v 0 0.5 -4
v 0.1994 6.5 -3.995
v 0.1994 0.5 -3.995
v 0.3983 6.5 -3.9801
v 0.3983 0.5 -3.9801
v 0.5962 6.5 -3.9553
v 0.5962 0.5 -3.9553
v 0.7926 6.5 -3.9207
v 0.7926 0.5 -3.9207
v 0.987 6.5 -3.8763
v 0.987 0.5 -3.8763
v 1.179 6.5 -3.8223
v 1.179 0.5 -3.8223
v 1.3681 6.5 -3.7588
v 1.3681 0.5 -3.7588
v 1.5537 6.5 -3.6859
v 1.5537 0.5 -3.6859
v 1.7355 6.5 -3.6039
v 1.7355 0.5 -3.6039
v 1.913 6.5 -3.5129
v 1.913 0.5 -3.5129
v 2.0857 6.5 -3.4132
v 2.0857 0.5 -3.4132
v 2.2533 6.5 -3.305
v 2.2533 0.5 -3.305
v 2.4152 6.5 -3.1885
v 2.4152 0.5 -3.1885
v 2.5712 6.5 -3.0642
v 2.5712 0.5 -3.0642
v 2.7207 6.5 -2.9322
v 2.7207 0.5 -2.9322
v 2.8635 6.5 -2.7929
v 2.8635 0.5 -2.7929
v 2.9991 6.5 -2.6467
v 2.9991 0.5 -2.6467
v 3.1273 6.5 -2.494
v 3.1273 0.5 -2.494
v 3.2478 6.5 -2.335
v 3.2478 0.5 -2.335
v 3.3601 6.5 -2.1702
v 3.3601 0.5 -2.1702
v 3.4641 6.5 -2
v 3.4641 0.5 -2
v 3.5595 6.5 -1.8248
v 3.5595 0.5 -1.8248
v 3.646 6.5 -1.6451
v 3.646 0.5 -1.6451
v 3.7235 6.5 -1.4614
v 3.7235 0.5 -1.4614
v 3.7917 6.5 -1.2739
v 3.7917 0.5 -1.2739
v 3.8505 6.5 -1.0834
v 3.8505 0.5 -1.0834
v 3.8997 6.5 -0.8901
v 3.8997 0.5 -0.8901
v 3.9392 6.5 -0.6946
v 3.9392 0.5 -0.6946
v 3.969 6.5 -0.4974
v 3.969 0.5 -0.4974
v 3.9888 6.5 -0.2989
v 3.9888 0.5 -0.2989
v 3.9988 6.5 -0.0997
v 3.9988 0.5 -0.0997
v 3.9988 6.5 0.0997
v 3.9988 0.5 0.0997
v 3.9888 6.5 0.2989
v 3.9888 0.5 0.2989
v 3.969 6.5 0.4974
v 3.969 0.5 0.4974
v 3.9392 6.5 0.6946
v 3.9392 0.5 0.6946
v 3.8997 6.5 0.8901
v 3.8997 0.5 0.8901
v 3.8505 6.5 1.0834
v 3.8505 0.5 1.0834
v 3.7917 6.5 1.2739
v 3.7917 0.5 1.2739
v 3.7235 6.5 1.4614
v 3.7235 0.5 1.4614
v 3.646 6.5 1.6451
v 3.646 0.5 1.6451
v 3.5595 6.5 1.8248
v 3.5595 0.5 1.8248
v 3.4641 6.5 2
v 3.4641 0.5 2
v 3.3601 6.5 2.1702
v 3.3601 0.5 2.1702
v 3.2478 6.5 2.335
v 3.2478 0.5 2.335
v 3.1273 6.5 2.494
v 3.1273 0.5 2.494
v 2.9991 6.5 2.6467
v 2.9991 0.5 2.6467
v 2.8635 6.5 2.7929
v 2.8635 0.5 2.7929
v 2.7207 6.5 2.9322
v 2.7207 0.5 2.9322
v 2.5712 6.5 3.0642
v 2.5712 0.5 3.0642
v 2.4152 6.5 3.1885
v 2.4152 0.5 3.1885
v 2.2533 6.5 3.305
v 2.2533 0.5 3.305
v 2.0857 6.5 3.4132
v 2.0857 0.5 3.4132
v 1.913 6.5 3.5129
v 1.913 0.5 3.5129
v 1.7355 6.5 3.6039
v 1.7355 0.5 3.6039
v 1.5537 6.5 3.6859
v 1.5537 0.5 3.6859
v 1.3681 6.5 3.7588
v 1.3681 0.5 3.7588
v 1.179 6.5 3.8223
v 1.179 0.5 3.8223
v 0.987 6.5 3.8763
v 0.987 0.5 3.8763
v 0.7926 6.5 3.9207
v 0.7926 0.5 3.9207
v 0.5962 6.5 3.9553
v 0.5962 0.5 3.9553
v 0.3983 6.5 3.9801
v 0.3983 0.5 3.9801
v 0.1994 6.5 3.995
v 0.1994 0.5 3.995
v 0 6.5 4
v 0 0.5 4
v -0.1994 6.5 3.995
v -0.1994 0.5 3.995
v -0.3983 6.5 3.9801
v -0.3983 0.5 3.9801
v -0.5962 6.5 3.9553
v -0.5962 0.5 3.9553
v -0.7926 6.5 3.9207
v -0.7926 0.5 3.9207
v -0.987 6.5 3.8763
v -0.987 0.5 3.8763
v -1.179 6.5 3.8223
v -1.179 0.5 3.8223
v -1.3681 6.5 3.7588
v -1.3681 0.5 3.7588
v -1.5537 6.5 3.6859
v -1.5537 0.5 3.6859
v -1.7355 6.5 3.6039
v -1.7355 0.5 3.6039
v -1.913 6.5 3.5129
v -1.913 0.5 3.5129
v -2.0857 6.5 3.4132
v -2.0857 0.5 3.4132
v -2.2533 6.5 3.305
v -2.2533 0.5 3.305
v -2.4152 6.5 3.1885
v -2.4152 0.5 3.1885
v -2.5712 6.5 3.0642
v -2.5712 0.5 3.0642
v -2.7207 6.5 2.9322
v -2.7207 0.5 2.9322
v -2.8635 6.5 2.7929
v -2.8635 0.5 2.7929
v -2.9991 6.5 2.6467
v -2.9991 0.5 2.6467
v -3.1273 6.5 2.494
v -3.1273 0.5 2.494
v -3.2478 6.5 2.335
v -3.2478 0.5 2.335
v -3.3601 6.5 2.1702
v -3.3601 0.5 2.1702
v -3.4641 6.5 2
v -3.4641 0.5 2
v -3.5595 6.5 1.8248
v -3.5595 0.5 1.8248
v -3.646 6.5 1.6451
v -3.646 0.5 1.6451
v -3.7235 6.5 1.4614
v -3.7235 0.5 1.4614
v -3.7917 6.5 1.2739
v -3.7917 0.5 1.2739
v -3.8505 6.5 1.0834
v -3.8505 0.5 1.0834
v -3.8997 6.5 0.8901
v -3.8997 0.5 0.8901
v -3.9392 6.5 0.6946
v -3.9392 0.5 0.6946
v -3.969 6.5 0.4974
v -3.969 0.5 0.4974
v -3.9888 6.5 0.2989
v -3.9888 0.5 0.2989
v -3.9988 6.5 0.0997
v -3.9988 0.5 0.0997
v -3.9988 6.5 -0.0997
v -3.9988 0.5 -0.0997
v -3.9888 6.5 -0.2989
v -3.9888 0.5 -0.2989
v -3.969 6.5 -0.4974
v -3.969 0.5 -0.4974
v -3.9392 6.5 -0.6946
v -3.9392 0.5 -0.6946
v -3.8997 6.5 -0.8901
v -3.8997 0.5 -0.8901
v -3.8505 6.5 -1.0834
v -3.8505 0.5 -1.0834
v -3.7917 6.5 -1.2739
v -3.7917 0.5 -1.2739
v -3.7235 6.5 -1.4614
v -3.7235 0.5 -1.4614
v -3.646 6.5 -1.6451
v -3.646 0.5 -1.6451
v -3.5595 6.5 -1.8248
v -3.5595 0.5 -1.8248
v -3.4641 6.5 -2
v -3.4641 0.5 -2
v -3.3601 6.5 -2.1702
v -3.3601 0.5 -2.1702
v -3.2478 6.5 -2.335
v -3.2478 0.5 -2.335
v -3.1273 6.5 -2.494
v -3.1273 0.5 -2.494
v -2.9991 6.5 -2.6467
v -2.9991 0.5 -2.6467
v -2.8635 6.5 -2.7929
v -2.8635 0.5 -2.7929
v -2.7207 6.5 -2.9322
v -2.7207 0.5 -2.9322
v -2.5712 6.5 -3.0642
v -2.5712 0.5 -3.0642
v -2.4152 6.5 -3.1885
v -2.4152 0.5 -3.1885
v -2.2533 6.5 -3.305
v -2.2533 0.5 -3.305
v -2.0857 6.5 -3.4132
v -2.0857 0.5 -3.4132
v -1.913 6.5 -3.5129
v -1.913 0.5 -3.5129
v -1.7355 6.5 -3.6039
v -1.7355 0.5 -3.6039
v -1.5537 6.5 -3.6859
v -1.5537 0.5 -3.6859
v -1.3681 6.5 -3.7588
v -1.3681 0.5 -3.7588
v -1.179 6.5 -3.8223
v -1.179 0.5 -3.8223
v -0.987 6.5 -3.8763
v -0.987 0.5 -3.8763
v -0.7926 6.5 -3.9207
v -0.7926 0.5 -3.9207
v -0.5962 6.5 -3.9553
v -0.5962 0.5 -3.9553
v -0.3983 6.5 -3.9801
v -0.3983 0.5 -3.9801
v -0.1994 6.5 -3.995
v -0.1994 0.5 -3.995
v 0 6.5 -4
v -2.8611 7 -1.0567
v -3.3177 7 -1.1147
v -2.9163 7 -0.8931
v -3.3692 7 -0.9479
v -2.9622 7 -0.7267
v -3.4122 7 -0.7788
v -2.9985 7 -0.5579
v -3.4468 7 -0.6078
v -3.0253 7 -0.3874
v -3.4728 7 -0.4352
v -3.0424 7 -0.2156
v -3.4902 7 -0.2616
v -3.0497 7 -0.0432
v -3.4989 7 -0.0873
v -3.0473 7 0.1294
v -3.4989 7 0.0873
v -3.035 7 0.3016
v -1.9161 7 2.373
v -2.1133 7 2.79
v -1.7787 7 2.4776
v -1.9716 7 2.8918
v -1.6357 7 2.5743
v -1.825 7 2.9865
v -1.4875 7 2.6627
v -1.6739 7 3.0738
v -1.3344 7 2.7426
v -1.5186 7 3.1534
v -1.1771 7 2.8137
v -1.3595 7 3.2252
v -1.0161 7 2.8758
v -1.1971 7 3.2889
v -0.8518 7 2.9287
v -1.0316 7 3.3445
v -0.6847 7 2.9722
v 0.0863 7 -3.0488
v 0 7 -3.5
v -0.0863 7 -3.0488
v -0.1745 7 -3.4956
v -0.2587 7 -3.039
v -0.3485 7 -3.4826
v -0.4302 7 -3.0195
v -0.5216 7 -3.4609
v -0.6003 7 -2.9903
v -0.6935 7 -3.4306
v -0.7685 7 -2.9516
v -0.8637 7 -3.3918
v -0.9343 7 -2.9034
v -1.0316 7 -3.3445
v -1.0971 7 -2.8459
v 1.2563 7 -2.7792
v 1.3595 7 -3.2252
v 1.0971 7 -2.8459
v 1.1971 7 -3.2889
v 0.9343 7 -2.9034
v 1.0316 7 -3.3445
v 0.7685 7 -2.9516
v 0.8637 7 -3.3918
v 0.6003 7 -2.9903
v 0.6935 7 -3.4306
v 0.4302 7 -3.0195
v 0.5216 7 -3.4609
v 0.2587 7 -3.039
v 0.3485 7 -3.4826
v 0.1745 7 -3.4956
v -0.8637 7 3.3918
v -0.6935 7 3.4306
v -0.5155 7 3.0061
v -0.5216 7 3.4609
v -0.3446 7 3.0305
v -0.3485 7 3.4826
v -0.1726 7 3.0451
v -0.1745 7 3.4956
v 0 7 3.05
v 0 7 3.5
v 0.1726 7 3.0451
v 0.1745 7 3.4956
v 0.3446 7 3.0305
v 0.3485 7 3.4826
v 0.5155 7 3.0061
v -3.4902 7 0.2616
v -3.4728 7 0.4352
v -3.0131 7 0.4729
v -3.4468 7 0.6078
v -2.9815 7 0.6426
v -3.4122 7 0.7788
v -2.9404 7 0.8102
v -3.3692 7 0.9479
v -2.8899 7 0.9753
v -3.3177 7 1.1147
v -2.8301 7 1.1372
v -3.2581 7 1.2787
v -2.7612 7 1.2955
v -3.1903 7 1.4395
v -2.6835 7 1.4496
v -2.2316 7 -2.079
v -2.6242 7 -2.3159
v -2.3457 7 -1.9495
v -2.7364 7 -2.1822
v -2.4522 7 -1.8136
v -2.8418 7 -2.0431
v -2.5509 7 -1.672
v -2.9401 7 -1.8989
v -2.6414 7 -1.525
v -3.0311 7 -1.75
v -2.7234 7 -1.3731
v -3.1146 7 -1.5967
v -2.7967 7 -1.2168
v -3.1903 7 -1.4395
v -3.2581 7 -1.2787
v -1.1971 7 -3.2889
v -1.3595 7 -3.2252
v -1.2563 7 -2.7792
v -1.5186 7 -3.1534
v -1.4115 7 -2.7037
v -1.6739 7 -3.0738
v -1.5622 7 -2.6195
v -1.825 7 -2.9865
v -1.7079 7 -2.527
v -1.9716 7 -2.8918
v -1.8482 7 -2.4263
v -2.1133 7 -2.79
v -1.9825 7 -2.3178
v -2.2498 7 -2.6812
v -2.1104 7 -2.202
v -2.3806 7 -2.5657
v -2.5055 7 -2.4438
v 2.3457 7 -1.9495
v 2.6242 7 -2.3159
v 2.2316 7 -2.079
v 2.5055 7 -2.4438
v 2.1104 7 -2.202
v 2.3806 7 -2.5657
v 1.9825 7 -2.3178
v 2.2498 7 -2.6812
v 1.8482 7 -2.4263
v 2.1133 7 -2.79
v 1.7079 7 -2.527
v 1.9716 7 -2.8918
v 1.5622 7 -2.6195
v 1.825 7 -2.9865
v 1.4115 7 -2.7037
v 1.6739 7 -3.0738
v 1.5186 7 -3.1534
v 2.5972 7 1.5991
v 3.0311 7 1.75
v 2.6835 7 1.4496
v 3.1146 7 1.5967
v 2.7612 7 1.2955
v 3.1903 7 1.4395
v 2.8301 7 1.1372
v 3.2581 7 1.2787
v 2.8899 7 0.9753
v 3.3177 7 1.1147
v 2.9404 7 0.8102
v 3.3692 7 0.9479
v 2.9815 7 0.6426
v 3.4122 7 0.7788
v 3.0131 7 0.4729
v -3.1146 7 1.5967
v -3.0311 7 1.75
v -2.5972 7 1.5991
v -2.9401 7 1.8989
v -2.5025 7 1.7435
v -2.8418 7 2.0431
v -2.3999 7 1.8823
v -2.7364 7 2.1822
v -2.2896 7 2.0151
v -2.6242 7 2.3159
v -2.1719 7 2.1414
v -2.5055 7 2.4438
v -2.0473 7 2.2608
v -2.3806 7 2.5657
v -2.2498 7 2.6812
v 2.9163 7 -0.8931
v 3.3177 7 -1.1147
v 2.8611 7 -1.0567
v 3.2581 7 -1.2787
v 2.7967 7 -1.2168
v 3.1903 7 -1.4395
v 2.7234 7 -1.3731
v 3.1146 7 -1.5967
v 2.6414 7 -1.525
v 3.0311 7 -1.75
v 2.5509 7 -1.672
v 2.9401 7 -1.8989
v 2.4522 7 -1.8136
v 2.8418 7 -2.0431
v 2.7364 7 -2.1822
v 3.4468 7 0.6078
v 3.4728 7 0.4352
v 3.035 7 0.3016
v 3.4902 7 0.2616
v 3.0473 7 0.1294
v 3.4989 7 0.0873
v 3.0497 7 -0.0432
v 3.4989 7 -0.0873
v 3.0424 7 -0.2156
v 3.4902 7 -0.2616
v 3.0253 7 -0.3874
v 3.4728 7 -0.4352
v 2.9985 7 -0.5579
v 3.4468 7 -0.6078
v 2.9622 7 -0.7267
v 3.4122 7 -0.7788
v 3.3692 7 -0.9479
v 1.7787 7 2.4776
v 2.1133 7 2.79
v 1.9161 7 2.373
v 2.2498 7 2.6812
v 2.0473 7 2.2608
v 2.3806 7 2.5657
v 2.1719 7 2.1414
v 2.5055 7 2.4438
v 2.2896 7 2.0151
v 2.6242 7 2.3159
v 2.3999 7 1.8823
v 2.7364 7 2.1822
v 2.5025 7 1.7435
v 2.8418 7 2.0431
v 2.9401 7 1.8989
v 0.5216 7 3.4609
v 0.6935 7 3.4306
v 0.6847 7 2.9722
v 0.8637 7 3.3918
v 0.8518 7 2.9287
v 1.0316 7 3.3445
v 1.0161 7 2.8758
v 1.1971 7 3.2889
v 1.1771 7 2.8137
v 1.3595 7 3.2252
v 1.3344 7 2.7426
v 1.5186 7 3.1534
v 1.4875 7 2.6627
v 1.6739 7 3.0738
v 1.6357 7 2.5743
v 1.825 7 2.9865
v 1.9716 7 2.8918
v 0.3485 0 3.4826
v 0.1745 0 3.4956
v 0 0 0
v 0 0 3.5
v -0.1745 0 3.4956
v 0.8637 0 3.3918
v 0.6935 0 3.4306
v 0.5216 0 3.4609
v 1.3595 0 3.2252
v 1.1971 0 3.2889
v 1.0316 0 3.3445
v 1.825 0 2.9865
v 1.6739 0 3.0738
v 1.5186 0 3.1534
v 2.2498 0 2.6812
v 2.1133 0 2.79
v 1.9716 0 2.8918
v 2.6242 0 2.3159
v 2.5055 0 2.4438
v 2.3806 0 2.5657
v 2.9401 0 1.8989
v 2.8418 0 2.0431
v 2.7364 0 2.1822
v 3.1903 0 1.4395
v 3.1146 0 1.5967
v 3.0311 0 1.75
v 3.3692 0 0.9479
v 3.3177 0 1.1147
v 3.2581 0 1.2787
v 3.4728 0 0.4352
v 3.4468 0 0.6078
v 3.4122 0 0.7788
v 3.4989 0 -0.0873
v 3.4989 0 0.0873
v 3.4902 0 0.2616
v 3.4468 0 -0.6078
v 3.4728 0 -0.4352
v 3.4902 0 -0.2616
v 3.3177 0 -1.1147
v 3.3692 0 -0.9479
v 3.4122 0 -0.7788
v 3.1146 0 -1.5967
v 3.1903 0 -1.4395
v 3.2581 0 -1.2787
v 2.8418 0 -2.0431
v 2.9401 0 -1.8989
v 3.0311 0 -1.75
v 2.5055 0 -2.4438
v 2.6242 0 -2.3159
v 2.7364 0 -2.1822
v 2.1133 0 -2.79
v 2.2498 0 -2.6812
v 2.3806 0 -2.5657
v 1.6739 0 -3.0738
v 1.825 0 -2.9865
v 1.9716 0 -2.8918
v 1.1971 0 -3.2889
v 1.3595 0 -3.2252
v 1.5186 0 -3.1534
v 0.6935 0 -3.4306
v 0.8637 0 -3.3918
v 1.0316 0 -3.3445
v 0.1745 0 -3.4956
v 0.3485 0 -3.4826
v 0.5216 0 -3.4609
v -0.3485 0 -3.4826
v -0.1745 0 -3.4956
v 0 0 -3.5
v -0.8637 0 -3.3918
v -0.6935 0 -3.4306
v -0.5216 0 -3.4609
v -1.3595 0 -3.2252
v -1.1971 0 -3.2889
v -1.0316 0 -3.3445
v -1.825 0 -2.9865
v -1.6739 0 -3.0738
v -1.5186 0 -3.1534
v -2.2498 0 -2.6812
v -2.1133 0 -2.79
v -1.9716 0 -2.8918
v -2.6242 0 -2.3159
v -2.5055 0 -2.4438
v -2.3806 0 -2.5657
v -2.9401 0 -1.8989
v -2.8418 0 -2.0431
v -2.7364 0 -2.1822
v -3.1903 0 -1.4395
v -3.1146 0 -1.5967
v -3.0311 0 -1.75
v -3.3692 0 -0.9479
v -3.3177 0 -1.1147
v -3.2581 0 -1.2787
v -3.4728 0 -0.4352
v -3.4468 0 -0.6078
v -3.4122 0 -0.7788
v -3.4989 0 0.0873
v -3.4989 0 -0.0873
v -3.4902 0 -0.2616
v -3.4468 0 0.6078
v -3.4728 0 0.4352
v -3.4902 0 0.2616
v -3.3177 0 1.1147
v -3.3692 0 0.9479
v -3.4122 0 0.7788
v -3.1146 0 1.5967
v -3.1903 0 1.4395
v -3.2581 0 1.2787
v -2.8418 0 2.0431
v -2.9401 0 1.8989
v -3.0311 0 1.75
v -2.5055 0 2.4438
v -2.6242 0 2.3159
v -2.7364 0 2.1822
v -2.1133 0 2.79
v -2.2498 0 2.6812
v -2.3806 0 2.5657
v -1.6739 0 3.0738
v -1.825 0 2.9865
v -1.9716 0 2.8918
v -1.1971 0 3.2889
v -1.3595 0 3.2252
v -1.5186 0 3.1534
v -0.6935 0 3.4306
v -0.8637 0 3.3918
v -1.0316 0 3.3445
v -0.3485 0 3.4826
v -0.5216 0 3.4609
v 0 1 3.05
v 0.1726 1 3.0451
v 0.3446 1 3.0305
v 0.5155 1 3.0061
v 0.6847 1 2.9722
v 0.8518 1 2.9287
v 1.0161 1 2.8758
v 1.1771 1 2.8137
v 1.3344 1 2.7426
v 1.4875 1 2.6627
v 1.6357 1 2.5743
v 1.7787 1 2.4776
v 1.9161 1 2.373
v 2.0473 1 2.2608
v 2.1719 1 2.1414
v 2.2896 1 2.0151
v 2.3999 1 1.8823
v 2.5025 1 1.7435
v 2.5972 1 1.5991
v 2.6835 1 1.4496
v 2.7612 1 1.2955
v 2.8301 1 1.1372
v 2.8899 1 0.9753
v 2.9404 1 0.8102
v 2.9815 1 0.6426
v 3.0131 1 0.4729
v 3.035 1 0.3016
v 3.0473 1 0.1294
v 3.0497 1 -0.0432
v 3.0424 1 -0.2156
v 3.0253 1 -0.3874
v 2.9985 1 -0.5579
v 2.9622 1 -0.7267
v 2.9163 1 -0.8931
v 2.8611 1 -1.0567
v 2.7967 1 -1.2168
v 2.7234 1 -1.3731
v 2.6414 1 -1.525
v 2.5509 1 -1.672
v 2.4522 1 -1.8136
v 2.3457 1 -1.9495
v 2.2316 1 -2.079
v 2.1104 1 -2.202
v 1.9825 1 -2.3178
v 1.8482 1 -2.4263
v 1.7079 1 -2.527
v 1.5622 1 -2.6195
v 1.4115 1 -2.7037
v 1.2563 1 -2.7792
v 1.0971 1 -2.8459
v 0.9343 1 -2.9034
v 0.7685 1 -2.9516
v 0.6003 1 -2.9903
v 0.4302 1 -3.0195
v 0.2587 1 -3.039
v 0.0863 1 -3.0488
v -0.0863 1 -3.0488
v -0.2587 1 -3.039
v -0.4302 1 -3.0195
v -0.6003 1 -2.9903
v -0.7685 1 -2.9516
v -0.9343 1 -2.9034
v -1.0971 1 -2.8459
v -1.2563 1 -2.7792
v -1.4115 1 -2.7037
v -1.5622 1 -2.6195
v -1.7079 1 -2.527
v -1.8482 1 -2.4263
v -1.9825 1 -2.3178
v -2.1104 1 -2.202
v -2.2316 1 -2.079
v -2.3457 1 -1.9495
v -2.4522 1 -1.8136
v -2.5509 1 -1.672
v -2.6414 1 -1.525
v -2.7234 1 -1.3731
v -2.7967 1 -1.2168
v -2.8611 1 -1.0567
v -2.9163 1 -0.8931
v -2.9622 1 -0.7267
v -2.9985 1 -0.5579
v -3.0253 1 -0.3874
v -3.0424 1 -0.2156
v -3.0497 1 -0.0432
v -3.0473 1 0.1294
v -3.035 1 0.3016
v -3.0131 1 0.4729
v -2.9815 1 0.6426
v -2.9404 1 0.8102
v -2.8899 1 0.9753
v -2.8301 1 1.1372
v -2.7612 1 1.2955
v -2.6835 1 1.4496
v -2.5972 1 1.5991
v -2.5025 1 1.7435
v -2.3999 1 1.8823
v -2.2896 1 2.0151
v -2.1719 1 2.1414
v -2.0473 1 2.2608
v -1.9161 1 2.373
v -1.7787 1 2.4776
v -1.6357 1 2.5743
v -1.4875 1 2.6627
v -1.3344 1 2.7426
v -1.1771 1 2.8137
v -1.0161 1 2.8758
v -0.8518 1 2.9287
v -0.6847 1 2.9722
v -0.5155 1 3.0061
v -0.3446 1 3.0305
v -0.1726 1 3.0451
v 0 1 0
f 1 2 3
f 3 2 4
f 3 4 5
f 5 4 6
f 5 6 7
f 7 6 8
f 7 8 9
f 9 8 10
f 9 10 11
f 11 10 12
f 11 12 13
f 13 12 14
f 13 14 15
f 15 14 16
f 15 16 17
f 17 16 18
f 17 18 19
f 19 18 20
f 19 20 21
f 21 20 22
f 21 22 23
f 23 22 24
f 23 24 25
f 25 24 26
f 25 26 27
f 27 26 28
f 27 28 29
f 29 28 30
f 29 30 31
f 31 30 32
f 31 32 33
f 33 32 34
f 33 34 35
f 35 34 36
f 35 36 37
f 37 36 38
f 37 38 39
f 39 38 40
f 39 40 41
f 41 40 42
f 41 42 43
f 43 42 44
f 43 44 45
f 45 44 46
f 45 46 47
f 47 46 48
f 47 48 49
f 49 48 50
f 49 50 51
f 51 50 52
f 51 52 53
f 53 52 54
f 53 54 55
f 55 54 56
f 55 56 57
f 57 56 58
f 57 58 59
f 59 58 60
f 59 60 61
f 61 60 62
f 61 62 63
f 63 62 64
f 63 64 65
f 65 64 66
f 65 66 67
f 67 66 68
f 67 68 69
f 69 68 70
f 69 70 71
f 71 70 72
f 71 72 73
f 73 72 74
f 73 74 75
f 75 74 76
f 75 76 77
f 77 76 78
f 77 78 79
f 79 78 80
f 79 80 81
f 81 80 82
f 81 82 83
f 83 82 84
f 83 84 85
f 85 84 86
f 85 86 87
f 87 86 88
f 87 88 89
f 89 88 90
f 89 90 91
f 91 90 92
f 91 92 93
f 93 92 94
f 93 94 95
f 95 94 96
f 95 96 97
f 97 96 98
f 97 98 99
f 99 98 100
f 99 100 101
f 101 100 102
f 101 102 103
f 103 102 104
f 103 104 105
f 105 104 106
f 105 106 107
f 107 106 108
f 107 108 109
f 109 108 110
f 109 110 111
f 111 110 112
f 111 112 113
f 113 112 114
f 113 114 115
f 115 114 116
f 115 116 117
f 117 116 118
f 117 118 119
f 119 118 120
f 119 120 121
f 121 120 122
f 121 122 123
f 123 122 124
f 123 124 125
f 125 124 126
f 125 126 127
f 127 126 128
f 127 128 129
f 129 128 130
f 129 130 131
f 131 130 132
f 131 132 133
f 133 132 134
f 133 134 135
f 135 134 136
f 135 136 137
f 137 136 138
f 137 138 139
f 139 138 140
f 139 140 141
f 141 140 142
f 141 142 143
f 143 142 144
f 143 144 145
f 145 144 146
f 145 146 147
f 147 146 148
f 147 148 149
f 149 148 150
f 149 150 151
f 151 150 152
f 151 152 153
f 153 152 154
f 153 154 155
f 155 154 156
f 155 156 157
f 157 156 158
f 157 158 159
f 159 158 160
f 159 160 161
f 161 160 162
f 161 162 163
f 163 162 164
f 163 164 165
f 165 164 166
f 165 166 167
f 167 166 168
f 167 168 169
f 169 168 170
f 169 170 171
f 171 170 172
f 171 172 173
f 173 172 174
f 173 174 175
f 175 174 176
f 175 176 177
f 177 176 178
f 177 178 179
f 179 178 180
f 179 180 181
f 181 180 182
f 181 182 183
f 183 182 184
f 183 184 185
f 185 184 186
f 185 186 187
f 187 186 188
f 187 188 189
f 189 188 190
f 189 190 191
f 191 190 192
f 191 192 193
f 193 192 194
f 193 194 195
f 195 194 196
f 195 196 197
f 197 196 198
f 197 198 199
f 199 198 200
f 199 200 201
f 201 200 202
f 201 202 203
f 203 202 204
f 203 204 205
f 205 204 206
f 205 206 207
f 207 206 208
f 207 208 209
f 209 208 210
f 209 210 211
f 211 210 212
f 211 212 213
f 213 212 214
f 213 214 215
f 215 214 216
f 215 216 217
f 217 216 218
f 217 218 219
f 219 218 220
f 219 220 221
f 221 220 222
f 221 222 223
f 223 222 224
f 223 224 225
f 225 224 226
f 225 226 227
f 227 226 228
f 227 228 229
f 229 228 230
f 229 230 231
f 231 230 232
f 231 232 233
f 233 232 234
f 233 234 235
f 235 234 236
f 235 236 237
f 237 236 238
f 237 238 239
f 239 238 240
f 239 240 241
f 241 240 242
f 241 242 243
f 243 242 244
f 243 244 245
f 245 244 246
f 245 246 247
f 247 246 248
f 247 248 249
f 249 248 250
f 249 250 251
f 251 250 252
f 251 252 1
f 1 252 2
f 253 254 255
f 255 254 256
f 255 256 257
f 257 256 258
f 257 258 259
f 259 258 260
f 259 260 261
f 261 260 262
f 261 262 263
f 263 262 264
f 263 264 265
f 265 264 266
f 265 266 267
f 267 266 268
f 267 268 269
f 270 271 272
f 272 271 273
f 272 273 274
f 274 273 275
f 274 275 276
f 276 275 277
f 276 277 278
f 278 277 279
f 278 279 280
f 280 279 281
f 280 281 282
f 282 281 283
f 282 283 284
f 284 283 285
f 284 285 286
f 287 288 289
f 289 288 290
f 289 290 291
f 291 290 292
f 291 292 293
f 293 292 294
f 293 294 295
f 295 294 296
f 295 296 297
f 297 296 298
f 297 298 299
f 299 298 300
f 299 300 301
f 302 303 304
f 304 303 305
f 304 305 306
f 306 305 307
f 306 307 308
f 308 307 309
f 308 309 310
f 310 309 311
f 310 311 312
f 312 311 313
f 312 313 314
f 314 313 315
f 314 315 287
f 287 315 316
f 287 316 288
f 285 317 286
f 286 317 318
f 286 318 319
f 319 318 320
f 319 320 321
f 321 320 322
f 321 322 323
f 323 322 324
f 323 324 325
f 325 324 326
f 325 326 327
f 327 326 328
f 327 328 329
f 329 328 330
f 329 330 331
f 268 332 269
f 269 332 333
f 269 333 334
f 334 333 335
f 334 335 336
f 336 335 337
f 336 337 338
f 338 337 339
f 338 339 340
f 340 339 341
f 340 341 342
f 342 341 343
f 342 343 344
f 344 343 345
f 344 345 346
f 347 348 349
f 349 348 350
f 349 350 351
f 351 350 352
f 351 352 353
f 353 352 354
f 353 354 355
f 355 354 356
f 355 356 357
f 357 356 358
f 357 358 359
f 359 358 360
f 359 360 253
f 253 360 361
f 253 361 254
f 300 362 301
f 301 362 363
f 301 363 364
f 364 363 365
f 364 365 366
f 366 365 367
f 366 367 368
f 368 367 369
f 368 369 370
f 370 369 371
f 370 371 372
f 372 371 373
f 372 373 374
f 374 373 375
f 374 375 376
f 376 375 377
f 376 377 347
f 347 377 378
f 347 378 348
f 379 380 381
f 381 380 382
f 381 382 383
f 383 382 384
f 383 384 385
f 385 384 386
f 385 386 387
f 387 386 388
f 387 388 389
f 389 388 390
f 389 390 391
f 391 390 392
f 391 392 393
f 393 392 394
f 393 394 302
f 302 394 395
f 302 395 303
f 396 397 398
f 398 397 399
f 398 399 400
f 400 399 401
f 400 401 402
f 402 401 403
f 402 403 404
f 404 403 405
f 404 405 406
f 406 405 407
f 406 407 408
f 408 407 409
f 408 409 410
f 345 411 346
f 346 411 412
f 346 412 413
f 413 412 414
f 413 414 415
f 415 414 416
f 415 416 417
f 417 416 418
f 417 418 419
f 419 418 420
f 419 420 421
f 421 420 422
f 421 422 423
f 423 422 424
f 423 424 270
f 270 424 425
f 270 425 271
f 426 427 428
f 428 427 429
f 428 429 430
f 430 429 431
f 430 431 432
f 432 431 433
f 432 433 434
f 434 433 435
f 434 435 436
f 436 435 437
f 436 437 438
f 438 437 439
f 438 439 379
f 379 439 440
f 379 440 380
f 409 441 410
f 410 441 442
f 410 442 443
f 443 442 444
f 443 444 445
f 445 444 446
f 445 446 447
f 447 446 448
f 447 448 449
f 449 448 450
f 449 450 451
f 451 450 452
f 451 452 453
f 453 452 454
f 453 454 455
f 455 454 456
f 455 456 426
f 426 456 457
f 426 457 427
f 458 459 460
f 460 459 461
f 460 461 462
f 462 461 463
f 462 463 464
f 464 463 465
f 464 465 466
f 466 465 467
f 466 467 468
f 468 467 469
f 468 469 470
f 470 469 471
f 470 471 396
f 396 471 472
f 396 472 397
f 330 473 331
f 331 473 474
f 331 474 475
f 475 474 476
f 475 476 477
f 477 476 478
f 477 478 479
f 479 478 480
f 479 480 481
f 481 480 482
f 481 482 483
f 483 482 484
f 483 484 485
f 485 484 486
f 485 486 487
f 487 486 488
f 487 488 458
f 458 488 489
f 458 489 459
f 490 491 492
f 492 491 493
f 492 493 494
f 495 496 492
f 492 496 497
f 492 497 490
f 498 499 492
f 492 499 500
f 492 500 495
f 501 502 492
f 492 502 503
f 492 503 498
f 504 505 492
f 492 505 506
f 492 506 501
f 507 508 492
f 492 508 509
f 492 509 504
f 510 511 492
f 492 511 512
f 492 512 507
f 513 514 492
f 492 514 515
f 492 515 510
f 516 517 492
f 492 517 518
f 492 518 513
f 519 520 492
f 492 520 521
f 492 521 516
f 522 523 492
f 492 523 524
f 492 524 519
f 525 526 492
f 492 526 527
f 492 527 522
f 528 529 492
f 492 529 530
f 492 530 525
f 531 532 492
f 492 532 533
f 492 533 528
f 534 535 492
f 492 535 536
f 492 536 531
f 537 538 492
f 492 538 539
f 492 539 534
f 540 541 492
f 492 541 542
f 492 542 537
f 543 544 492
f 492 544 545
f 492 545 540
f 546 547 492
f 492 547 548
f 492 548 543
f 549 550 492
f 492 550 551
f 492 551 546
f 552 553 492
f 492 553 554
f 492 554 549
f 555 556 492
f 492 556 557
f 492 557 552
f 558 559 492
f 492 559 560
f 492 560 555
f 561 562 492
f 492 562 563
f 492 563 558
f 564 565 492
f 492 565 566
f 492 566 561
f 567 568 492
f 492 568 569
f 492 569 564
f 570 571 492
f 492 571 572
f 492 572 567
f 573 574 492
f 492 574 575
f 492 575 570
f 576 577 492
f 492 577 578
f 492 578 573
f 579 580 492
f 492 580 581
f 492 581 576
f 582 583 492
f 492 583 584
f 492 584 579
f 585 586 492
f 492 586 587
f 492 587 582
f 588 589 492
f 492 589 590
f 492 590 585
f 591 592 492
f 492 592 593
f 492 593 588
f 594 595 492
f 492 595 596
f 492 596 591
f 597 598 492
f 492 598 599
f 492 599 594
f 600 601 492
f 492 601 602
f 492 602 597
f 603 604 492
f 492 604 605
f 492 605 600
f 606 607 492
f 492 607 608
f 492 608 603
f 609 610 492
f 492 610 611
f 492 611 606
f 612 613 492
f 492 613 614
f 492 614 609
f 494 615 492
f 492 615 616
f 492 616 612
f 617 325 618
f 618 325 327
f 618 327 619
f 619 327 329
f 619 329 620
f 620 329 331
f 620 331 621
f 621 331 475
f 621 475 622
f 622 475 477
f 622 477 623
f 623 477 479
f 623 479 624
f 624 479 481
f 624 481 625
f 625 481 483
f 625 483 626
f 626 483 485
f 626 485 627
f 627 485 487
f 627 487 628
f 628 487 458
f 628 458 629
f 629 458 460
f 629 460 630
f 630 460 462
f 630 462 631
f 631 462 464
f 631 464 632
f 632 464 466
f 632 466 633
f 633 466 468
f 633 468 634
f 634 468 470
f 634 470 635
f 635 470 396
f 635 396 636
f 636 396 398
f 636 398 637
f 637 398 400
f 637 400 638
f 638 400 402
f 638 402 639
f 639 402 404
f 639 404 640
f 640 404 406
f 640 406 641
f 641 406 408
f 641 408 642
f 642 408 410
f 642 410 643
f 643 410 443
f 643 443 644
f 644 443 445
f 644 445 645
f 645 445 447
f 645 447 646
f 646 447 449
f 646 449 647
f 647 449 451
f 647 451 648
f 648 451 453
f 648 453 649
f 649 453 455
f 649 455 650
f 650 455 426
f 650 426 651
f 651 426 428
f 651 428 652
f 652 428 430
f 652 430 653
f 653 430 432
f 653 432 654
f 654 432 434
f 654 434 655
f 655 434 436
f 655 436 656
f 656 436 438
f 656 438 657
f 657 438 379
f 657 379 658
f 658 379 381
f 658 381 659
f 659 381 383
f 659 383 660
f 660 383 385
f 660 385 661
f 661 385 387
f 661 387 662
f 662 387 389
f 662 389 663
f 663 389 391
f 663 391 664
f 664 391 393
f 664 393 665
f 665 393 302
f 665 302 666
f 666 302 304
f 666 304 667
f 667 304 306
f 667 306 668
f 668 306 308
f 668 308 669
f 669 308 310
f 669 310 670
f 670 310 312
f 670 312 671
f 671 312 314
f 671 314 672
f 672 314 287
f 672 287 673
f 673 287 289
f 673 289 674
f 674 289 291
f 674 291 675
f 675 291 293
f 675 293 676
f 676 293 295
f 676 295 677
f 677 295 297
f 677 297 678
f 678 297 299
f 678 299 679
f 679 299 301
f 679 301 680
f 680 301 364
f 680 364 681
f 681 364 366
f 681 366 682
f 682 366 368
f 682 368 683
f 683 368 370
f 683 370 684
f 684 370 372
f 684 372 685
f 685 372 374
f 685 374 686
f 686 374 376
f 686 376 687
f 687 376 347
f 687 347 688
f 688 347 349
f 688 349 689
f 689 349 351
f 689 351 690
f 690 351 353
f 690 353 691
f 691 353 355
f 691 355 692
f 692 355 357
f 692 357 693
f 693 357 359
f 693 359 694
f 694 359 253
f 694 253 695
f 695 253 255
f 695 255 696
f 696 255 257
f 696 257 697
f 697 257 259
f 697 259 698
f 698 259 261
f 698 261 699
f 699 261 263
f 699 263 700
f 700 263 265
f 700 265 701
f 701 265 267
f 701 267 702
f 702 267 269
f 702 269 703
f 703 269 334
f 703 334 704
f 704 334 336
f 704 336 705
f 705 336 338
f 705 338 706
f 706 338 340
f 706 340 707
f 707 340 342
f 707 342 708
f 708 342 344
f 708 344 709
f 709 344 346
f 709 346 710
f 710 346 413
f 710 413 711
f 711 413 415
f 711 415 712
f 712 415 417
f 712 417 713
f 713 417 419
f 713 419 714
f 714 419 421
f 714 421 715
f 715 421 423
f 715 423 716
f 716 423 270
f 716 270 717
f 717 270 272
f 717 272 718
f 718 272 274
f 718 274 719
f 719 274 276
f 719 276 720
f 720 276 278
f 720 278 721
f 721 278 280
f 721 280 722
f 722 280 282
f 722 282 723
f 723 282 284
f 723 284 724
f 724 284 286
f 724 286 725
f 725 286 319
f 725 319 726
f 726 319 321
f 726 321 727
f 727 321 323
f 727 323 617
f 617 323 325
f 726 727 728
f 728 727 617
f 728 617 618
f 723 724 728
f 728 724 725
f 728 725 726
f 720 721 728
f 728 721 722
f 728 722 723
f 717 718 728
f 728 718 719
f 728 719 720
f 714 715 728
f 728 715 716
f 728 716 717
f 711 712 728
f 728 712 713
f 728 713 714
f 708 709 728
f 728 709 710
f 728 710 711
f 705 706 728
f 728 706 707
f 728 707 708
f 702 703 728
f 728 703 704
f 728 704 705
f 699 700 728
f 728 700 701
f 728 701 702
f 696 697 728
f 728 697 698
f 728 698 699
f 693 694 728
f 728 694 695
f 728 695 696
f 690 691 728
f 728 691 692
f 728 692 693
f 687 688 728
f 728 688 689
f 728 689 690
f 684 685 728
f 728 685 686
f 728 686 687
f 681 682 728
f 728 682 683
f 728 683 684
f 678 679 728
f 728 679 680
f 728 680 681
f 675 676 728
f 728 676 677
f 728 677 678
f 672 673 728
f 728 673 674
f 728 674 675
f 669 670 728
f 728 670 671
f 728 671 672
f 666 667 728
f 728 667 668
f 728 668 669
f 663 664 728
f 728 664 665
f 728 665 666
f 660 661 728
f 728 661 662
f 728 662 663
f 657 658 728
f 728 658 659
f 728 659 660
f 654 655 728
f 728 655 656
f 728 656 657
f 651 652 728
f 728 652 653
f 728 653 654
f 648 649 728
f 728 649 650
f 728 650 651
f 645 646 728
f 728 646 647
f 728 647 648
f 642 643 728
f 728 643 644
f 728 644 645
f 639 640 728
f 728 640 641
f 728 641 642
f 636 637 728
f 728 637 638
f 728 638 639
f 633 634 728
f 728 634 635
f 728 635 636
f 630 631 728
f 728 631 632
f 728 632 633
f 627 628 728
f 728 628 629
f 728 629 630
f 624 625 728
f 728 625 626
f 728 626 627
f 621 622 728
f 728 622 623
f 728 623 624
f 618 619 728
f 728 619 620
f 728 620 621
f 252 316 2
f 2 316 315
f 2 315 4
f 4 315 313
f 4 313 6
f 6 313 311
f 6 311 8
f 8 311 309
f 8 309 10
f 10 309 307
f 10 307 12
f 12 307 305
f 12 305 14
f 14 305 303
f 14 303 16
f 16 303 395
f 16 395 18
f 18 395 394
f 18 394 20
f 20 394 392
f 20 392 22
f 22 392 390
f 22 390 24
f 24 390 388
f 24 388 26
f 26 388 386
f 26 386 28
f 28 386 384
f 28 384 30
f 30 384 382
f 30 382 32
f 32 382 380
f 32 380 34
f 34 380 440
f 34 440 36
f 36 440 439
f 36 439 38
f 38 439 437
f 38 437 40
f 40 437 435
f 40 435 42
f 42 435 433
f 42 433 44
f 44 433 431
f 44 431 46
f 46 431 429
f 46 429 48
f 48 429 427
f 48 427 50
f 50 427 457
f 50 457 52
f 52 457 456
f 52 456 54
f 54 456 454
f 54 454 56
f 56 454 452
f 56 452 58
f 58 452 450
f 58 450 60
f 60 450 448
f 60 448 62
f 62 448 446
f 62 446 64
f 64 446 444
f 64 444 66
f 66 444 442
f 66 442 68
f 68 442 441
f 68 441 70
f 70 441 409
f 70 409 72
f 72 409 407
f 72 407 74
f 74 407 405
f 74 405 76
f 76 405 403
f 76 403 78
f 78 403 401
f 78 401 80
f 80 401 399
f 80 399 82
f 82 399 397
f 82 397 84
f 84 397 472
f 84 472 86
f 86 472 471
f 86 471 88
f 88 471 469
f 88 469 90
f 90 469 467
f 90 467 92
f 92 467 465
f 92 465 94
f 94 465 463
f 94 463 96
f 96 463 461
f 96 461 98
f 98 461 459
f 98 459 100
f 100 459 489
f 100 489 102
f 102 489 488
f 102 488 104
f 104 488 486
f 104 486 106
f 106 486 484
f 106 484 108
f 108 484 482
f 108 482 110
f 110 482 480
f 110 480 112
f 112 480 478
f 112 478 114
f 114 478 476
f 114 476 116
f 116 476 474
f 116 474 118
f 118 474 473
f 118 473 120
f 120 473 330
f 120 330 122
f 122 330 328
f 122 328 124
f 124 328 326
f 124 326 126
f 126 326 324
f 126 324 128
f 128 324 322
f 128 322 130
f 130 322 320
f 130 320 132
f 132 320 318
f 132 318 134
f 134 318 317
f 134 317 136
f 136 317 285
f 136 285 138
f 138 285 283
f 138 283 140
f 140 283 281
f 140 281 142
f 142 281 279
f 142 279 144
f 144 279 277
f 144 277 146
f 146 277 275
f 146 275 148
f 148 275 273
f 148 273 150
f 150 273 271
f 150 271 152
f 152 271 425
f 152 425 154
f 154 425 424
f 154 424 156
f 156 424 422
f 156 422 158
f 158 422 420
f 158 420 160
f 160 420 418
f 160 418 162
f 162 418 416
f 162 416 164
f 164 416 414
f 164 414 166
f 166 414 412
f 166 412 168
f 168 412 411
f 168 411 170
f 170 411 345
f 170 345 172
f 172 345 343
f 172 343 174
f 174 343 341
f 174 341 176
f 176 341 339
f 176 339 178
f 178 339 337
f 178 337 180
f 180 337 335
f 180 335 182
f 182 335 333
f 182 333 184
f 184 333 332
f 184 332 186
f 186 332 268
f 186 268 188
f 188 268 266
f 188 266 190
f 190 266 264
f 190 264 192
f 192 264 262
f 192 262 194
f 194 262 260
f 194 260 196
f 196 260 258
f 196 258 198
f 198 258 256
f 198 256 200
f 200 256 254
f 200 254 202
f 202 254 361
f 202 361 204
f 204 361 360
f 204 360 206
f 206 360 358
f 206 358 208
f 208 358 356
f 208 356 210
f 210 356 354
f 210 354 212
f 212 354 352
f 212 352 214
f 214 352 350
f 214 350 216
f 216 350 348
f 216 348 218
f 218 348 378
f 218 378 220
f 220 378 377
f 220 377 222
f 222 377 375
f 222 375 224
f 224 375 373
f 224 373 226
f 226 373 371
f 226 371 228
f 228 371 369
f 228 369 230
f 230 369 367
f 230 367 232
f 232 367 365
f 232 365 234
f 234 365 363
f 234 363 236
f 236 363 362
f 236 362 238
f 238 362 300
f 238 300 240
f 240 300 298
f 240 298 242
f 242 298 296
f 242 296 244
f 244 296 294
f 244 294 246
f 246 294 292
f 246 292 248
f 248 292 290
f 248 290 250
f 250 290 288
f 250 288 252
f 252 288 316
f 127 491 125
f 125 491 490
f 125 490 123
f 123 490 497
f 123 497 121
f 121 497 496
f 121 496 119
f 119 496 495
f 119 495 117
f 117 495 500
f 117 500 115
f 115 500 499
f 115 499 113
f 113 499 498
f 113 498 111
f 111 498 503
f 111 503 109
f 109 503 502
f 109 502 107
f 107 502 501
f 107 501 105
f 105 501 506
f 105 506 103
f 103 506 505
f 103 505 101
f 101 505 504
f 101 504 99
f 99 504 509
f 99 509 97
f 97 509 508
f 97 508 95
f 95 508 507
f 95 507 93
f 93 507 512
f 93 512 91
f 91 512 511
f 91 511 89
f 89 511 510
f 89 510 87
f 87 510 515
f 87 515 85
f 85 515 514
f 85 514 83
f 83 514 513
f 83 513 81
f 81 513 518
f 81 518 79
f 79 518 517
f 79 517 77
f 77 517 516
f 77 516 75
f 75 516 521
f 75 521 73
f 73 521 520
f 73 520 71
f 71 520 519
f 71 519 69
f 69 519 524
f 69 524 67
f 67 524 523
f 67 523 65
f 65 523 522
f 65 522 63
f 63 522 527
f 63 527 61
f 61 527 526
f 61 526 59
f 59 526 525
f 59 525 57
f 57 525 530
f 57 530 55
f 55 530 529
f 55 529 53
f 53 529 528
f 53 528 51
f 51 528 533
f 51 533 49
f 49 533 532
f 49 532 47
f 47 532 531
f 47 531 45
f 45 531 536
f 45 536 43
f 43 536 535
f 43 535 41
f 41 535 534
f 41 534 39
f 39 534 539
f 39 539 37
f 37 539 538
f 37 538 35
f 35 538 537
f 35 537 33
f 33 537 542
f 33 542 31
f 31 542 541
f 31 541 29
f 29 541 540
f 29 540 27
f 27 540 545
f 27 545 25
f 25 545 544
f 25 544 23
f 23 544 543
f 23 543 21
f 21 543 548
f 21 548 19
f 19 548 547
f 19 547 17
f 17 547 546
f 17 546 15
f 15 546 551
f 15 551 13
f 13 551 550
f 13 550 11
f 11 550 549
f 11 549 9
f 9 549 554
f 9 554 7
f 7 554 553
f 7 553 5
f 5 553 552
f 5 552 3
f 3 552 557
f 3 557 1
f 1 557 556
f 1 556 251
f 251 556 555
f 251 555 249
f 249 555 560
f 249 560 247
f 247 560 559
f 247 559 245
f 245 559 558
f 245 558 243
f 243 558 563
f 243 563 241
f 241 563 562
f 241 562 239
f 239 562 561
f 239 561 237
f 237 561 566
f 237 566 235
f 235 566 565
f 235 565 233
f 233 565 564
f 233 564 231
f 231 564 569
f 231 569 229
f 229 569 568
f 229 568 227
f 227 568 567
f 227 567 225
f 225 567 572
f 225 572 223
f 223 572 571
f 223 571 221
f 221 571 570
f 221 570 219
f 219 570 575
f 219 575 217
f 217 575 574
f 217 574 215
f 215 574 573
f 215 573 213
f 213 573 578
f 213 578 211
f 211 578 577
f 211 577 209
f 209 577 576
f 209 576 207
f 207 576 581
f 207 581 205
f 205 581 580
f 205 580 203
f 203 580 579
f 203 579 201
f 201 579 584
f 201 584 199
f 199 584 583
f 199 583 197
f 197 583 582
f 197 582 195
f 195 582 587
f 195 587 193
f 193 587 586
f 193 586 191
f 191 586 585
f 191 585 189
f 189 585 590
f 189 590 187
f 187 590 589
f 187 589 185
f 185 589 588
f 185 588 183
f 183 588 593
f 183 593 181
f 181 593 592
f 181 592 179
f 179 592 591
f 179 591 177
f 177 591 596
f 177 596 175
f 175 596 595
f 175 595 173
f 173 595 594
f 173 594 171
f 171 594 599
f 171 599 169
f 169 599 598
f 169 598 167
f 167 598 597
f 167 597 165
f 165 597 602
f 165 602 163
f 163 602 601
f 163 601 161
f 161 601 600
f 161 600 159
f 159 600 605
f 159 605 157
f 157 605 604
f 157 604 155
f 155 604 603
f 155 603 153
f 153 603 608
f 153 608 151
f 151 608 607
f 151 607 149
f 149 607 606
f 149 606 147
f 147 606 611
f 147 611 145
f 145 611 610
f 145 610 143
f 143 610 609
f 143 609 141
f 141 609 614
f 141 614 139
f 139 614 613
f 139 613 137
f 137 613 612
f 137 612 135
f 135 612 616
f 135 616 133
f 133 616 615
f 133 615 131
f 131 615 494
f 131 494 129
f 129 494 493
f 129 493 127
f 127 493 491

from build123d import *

# Parameters (mm, degrees)
SKETCH1_R           = 4
BOSS_EXTRUDE1_DEPTH = 7
SKETCH2_R           = 3.05
CUT_EXTRUDE1_DEPTH  = 6
CHAMFER1_SIZE       = 0.5


with BuildPart() as part:
    # Sketch1 → Boss-Extrude1 (new body)
    with BuildSketch(Plane(origin=(0, 0, 0), x_dir=(1, 0, 0), z_dir=(0, 1, 0))):
        with Locations(Location((0, 0, 0), (0, 0, 270))):
            Circle(SKETCH1_R)
    extrude(amount=BOSS_EXTRUDE1_DEPTH)

    # Sketch2 → Cut-Extrude1 (cut)
    with BuildSketch(Plane(origin=(0, 7, 0), x_dir=(1, 0, 0), z_dir=(0, 1, 0))):
        with Locations(Location((0, 0, 0), (0, 0, 270))):
            Circle(SKETCH2_R)
    extrude(amount=-CUT_EXTRUDE1_DEPTH, mode=Mode.SUBTRACT)

    # Chamfer1
    chamfer1_edges = [part.edges().sort_by_distance(p)[0] for p in [
        (0, 0, -4),
        (0, 7, -4),
    ]]
    chamfer(chamfer1_edges, length=CHAMFER1_SIZE)


solid = part.part
